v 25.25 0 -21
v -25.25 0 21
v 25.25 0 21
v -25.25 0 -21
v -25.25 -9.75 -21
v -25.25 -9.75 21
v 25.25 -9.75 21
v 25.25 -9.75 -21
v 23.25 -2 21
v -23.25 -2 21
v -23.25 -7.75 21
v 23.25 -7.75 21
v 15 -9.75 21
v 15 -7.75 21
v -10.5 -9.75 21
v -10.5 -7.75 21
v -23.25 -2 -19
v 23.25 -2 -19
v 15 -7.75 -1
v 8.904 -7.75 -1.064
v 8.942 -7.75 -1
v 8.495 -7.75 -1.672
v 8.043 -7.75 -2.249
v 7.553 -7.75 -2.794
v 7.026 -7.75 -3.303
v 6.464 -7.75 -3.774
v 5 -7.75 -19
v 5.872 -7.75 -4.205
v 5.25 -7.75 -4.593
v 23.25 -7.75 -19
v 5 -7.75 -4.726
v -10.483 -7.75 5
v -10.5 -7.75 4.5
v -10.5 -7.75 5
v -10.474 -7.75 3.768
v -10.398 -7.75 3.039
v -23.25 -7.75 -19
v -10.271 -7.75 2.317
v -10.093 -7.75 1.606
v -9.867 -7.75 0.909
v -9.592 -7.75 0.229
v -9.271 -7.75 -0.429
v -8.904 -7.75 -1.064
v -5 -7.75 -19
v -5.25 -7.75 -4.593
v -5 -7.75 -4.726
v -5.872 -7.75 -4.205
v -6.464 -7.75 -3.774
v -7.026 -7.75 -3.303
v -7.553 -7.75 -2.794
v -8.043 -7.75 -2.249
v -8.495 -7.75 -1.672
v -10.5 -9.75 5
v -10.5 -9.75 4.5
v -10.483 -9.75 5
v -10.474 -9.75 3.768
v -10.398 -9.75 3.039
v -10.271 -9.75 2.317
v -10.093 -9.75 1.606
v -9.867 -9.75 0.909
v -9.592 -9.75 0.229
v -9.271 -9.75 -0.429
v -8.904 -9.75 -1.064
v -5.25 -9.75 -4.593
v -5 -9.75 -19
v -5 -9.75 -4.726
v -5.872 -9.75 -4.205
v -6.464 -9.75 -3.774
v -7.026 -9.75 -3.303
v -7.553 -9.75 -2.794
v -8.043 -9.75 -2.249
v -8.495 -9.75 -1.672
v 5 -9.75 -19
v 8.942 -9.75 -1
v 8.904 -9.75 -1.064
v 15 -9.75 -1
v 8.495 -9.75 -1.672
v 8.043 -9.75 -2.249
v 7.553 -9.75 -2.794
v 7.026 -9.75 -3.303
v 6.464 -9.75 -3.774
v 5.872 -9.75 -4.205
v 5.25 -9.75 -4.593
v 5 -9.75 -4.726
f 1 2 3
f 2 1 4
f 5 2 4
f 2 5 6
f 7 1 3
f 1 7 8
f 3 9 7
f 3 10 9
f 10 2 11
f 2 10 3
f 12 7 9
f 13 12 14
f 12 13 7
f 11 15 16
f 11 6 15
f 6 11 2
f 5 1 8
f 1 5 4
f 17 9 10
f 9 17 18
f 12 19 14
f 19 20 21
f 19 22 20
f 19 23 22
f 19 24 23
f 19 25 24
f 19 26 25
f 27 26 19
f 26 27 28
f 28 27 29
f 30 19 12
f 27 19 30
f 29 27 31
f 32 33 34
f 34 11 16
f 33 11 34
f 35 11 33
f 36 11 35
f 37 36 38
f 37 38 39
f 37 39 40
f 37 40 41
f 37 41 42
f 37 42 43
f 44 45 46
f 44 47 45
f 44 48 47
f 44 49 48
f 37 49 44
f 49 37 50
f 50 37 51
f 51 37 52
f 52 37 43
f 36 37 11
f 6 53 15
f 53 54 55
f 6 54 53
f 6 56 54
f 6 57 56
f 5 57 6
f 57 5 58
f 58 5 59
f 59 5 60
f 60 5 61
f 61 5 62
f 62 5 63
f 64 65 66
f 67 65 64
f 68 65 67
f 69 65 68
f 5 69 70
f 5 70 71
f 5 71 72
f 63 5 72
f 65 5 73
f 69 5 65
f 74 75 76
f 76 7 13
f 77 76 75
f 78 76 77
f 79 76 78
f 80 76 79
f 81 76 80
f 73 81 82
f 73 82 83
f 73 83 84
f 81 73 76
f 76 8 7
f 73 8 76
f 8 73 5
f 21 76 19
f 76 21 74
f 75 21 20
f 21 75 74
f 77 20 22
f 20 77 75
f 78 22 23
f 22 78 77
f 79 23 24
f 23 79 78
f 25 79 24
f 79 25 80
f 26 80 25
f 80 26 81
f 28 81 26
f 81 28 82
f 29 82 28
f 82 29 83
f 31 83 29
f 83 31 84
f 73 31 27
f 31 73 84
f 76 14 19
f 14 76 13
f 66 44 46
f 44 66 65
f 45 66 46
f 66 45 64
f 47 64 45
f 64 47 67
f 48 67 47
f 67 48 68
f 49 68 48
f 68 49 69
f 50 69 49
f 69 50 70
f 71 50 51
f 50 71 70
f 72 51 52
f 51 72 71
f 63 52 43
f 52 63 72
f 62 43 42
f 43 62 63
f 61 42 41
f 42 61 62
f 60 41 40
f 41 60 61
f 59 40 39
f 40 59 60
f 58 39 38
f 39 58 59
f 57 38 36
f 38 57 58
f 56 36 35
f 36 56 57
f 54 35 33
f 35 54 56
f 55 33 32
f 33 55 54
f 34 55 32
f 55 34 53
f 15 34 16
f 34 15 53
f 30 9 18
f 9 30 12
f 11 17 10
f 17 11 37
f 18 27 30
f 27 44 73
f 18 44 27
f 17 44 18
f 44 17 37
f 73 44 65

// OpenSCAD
$fn=90;
$wall_thickness=2;
$pad_thickness=7.75;

rotate([-90,0,180]){
    linear_extrude($wall_thickness)
    square([46.5+($wall_thickness*2),40+$wall_thickness], true);

    translate([0,0,$pad_thickness]){
        linear_extrude($wall_thickness){
            difference() {
                square([50.5,42], true);
                square([10,50], true);
                translate([0,-15,0])
                square([21,20],true);
                translate([0,-4.5,0])
                circle(d=21);
                // add square cutout for HF Pittsburgh red clamp screw end
                translate([-11.5,-14,0])
                square([7,30], true);
                //
            }}}
            

    translate([-24.25,0,0])      
      linear_extrude($pad_thickness)  
        square([$wall_thickness, 42], true);
            
    translate([24.25,0,0])      
      linear_extrude($pad_thickness)  
        square([$wall_thickness, 42], true);
            
    translate([0,20,0])      
      linear_extrude($pad_thickness+2)  
        square([49,$wall_thickness], true);
}
